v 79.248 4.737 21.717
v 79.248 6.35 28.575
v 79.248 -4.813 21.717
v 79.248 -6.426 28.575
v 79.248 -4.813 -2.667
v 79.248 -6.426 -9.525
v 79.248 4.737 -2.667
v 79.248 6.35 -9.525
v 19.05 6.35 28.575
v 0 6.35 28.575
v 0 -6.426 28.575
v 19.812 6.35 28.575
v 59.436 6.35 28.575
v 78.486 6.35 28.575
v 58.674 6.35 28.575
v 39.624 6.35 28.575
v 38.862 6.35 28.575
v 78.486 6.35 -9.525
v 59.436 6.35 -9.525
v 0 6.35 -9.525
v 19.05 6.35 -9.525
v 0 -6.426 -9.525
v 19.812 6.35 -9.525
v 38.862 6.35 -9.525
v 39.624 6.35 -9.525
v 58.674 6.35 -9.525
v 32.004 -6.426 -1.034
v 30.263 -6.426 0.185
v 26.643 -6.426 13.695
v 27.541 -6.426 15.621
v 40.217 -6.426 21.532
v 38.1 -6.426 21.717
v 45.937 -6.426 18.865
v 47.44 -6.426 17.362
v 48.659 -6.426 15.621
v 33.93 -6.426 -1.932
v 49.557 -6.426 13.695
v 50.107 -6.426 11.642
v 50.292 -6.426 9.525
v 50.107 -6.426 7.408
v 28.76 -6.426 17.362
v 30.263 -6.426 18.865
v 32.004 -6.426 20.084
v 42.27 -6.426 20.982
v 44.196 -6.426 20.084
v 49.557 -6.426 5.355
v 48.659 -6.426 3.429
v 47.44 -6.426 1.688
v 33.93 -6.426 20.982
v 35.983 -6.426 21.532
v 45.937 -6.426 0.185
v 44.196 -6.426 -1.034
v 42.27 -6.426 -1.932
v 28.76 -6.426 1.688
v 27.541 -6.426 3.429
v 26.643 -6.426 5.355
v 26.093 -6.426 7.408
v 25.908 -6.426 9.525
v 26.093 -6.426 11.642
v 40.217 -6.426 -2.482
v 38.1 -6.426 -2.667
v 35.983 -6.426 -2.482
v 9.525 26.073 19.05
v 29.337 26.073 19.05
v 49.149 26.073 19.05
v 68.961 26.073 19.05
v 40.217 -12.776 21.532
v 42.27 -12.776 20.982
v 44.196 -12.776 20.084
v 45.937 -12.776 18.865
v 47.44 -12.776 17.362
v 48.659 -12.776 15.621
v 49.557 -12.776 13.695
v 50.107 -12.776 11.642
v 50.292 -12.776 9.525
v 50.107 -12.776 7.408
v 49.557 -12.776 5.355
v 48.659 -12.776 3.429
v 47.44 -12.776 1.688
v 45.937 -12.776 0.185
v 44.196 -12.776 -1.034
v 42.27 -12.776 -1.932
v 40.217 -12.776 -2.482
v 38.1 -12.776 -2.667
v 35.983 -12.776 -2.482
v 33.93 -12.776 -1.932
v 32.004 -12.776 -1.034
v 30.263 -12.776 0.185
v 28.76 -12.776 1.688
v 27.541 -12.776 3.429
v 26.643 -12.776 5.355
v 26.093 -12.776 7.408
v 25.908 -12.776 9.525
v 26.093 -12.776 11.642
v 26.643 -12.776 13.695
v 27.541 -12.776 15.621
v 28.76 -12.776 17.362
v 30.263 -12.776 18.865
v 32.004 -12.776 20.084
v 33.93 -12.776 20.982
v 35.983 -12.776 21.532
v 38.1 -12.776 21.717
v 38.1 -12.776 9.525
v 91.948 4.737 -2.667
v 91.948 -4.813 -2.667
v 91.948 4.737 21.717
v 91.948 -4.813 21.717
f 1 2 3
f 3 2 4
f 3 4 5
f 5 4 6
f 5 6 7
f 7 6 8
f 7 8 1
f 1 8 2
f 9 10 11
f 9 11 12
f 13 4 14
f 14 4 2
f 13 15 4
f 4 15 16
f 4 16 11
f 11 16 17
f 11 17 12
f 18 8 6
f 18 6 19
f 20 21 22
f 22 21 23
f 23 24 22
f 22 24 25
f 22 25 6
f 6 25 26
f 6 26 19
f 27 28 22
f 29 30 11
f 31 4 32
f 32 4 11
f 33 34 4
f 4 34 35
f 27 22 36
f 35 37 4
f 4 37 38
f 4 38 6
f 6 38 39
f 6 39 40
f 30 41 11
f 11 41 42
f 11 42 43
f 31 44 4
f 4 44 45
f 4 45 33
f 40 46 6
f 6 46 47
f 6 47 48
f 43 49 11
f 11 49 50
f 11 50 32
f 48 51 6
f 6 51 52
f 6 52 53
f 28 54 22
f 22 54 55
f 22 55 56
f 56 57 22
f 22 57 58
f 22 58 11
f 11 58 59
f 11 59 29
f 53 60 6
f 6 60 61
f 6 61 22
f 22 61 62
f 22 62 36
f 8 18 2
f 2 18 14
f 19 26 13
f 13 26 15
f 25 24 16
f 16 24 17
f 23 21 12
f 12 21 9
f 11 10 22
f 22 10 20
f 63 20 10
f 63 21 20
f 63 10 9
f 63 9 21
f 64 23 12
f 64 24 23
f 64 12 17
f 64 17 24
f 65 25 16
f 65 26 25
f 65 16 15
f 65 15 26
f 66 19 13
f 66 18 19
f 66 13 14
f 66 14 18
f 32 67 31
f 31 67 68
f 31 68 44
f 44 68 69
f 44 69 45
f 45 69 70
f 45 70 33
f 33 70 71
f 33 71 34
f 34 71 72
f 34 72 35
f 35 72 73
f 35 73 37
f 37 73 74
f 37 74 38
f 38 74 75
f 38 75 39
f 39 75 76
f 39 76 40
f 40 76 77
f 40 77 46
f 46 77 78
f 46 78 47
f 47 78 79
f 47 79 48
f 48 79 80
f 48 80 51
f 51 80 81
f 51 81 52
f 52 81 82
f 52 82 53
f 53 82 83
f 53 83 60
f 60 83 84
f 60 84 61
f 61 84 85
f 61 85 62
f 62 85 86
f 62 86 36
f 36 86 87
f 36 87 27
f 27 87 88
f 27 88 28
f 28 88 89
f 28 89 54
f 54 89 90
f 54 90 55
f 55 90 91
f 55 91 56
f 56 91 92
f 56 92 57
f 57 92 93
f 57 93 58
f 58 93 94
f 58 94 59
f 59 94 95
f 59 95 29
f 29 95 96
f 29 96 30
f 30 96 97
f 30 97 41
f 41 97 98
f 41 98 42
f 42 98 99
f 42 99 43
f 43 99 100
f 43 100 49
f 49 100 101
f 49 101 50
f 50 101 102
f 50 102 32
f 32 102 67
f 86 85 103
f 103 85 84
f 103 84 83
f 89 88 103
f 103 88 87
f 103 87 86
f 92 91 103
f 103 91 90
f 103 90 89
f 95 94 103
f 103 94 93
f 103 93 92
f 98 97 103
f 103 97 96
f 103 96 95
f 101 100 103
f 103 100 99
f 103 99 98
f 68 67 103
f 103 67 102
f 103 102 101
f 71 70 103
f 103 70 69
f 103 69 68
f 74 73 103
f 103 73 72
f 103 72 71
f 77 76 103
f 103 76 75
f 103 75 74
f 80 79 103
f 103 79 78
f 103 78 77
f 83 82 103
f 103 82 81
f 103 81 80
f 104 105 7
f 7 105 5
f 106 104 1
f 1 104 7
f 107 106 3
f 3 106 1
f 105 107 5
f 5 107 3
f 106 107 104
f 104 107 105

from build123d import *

# Parameters (mm, degrees)
SKETCH1_W           = 19.05
SKETCH1_H           = 19.05
BOSS_EXTRUDE2_DEPTH = 6.35
SKETCH8_W           = 217.17
SKETCH8_H           = 38.1
BOSS_EXTRUDE4_DEPTH = 6.35
SKETCH8_5_W         = 217.17
SKETCH8_5_H         = 38.1
BOSS_EXTRUDE5_DEPTH = 6.4262
SKETCH9_W           = 19.05
SKETCH9_H           = 38.1
LPATTERN3_COUNT     = 11
LPATTERN3_PITCH     = 19.812
SKETCH15_R          = 12.192
BOSS_EXTRUDE6_DEPTH = 6.35
SKETCH16_W          = 57.265249545
SKETCH16_H          = 42.292481859
CUT_EXTRUDE1_DEPTH  = 137.922
SKETCH17_W          = 24.384
SKETCH17_H          = 9.5504
BOSS_EXTRUDE7_DEPTH = 12.7


with BuildPart() as part:
    # Sketch1 → Boss-Extrude2 (new body)
    with BuildSketch(Plane(origin=(0, 0, 0), x_dir=(1, 0, 0), z_dir=(0, 1, 0))):
        with Locations((9.525, -9.525)):
            Rectangle(SKETCH1_W, SKETCH1_H)
    extrude(amount=BOSS_EXTRUDE2_DEPTH)

    # Sketch8 → Boss-Extrude4 (add)
    with BuildSketch(Plane(origin=(0, 0, 0), x_dir=(1, 0, 0), z_dir=(0, 1, 0))):
        with Locations((108.585, -9.525)):
            Rectangle(SKETCH8_W, SKETCH8_H)
    extrude(amount=BOSS_EXTRUDE4_DEPTH)

    # Sketch8<5> → Boss-Extrude5 (add)
    with BuildSketch(Plane(origin=(0, 0, 0), x_dir=(1, 0, 0), z_dir=(0, 1, 0))):
        with Locations((108.585, -9.525)):
            Rectangle(SKETCH8_5_W, SKETCH8_5_H)
    extrude(amount=-BOSS_EXTRUDE5_DEPTH)

    # Sketch9 → Loft3 section 0
    with BuildSketch(Plane(origin=(0, 6.35, 0), x_dir=(1, 0, 0), z_dir=(0, 1, 0)), mode=Mode.PRIVATE) as loft3_s0:
        with Locations((9.525, -9.525)):
            Rectangle(SKETCH9_W, SKETCH9_H)
    loft3 = loft([loft3_s0.sketch, Vertex(9.525, 26.0731, 19.05)])

    # LPattern3: Loft3 ×11
    with Locations(*[(i * LPATTERN3_PITCH, 0, 0) for i in range(1, LPATTERN3_COUNT)]):
        add(loft3)

    # Sketch15 → Boss-Extrude6 (add)
    with BuildSketch(Plane.XZ.offset(6.4262)):
        with Locations((179.07, 9.525)):
            Circle(SKETCH15_R)
        with Locations((38.1, 9.525)):
            Circle(SKETCH15_R)
        with Locations((108.585, 9.525)):
            Circle(SKETCH15_R)
    extrude(amount=BOSS_EXTRUDE6_DEPTH)

    # Sketch16 → Cut-Extrude1 (cut)
    with BuildSketch(Plane(origin=(217.17, 0, 0), x_dir=(0, 0, -1), z_dir=(1, 0, 0))):
        with Locations((-10.111619629, 6.16028271)):
            Rectangle(SKETCH16_W, SKETCH16_H)
    extrude(amount=-CUT_EXTRUDE1_DEPTH, mode=Mode.SUBTRACT)

    # Sketch17 → Boss-Extrude7 (add)
    with BuildSketch(Plane(origin=(79.248, 0, 0), x_dir=(0, 0, -1), z_dir=(1, 0, 0))):
        with Locations((-9.525, -0.0381)):
            Rectangle(SKETCH17_W, SKETCH17_H)
    extrude(amount=BOSS_EXTRUDE7_DEPTH)


solid = part.part
